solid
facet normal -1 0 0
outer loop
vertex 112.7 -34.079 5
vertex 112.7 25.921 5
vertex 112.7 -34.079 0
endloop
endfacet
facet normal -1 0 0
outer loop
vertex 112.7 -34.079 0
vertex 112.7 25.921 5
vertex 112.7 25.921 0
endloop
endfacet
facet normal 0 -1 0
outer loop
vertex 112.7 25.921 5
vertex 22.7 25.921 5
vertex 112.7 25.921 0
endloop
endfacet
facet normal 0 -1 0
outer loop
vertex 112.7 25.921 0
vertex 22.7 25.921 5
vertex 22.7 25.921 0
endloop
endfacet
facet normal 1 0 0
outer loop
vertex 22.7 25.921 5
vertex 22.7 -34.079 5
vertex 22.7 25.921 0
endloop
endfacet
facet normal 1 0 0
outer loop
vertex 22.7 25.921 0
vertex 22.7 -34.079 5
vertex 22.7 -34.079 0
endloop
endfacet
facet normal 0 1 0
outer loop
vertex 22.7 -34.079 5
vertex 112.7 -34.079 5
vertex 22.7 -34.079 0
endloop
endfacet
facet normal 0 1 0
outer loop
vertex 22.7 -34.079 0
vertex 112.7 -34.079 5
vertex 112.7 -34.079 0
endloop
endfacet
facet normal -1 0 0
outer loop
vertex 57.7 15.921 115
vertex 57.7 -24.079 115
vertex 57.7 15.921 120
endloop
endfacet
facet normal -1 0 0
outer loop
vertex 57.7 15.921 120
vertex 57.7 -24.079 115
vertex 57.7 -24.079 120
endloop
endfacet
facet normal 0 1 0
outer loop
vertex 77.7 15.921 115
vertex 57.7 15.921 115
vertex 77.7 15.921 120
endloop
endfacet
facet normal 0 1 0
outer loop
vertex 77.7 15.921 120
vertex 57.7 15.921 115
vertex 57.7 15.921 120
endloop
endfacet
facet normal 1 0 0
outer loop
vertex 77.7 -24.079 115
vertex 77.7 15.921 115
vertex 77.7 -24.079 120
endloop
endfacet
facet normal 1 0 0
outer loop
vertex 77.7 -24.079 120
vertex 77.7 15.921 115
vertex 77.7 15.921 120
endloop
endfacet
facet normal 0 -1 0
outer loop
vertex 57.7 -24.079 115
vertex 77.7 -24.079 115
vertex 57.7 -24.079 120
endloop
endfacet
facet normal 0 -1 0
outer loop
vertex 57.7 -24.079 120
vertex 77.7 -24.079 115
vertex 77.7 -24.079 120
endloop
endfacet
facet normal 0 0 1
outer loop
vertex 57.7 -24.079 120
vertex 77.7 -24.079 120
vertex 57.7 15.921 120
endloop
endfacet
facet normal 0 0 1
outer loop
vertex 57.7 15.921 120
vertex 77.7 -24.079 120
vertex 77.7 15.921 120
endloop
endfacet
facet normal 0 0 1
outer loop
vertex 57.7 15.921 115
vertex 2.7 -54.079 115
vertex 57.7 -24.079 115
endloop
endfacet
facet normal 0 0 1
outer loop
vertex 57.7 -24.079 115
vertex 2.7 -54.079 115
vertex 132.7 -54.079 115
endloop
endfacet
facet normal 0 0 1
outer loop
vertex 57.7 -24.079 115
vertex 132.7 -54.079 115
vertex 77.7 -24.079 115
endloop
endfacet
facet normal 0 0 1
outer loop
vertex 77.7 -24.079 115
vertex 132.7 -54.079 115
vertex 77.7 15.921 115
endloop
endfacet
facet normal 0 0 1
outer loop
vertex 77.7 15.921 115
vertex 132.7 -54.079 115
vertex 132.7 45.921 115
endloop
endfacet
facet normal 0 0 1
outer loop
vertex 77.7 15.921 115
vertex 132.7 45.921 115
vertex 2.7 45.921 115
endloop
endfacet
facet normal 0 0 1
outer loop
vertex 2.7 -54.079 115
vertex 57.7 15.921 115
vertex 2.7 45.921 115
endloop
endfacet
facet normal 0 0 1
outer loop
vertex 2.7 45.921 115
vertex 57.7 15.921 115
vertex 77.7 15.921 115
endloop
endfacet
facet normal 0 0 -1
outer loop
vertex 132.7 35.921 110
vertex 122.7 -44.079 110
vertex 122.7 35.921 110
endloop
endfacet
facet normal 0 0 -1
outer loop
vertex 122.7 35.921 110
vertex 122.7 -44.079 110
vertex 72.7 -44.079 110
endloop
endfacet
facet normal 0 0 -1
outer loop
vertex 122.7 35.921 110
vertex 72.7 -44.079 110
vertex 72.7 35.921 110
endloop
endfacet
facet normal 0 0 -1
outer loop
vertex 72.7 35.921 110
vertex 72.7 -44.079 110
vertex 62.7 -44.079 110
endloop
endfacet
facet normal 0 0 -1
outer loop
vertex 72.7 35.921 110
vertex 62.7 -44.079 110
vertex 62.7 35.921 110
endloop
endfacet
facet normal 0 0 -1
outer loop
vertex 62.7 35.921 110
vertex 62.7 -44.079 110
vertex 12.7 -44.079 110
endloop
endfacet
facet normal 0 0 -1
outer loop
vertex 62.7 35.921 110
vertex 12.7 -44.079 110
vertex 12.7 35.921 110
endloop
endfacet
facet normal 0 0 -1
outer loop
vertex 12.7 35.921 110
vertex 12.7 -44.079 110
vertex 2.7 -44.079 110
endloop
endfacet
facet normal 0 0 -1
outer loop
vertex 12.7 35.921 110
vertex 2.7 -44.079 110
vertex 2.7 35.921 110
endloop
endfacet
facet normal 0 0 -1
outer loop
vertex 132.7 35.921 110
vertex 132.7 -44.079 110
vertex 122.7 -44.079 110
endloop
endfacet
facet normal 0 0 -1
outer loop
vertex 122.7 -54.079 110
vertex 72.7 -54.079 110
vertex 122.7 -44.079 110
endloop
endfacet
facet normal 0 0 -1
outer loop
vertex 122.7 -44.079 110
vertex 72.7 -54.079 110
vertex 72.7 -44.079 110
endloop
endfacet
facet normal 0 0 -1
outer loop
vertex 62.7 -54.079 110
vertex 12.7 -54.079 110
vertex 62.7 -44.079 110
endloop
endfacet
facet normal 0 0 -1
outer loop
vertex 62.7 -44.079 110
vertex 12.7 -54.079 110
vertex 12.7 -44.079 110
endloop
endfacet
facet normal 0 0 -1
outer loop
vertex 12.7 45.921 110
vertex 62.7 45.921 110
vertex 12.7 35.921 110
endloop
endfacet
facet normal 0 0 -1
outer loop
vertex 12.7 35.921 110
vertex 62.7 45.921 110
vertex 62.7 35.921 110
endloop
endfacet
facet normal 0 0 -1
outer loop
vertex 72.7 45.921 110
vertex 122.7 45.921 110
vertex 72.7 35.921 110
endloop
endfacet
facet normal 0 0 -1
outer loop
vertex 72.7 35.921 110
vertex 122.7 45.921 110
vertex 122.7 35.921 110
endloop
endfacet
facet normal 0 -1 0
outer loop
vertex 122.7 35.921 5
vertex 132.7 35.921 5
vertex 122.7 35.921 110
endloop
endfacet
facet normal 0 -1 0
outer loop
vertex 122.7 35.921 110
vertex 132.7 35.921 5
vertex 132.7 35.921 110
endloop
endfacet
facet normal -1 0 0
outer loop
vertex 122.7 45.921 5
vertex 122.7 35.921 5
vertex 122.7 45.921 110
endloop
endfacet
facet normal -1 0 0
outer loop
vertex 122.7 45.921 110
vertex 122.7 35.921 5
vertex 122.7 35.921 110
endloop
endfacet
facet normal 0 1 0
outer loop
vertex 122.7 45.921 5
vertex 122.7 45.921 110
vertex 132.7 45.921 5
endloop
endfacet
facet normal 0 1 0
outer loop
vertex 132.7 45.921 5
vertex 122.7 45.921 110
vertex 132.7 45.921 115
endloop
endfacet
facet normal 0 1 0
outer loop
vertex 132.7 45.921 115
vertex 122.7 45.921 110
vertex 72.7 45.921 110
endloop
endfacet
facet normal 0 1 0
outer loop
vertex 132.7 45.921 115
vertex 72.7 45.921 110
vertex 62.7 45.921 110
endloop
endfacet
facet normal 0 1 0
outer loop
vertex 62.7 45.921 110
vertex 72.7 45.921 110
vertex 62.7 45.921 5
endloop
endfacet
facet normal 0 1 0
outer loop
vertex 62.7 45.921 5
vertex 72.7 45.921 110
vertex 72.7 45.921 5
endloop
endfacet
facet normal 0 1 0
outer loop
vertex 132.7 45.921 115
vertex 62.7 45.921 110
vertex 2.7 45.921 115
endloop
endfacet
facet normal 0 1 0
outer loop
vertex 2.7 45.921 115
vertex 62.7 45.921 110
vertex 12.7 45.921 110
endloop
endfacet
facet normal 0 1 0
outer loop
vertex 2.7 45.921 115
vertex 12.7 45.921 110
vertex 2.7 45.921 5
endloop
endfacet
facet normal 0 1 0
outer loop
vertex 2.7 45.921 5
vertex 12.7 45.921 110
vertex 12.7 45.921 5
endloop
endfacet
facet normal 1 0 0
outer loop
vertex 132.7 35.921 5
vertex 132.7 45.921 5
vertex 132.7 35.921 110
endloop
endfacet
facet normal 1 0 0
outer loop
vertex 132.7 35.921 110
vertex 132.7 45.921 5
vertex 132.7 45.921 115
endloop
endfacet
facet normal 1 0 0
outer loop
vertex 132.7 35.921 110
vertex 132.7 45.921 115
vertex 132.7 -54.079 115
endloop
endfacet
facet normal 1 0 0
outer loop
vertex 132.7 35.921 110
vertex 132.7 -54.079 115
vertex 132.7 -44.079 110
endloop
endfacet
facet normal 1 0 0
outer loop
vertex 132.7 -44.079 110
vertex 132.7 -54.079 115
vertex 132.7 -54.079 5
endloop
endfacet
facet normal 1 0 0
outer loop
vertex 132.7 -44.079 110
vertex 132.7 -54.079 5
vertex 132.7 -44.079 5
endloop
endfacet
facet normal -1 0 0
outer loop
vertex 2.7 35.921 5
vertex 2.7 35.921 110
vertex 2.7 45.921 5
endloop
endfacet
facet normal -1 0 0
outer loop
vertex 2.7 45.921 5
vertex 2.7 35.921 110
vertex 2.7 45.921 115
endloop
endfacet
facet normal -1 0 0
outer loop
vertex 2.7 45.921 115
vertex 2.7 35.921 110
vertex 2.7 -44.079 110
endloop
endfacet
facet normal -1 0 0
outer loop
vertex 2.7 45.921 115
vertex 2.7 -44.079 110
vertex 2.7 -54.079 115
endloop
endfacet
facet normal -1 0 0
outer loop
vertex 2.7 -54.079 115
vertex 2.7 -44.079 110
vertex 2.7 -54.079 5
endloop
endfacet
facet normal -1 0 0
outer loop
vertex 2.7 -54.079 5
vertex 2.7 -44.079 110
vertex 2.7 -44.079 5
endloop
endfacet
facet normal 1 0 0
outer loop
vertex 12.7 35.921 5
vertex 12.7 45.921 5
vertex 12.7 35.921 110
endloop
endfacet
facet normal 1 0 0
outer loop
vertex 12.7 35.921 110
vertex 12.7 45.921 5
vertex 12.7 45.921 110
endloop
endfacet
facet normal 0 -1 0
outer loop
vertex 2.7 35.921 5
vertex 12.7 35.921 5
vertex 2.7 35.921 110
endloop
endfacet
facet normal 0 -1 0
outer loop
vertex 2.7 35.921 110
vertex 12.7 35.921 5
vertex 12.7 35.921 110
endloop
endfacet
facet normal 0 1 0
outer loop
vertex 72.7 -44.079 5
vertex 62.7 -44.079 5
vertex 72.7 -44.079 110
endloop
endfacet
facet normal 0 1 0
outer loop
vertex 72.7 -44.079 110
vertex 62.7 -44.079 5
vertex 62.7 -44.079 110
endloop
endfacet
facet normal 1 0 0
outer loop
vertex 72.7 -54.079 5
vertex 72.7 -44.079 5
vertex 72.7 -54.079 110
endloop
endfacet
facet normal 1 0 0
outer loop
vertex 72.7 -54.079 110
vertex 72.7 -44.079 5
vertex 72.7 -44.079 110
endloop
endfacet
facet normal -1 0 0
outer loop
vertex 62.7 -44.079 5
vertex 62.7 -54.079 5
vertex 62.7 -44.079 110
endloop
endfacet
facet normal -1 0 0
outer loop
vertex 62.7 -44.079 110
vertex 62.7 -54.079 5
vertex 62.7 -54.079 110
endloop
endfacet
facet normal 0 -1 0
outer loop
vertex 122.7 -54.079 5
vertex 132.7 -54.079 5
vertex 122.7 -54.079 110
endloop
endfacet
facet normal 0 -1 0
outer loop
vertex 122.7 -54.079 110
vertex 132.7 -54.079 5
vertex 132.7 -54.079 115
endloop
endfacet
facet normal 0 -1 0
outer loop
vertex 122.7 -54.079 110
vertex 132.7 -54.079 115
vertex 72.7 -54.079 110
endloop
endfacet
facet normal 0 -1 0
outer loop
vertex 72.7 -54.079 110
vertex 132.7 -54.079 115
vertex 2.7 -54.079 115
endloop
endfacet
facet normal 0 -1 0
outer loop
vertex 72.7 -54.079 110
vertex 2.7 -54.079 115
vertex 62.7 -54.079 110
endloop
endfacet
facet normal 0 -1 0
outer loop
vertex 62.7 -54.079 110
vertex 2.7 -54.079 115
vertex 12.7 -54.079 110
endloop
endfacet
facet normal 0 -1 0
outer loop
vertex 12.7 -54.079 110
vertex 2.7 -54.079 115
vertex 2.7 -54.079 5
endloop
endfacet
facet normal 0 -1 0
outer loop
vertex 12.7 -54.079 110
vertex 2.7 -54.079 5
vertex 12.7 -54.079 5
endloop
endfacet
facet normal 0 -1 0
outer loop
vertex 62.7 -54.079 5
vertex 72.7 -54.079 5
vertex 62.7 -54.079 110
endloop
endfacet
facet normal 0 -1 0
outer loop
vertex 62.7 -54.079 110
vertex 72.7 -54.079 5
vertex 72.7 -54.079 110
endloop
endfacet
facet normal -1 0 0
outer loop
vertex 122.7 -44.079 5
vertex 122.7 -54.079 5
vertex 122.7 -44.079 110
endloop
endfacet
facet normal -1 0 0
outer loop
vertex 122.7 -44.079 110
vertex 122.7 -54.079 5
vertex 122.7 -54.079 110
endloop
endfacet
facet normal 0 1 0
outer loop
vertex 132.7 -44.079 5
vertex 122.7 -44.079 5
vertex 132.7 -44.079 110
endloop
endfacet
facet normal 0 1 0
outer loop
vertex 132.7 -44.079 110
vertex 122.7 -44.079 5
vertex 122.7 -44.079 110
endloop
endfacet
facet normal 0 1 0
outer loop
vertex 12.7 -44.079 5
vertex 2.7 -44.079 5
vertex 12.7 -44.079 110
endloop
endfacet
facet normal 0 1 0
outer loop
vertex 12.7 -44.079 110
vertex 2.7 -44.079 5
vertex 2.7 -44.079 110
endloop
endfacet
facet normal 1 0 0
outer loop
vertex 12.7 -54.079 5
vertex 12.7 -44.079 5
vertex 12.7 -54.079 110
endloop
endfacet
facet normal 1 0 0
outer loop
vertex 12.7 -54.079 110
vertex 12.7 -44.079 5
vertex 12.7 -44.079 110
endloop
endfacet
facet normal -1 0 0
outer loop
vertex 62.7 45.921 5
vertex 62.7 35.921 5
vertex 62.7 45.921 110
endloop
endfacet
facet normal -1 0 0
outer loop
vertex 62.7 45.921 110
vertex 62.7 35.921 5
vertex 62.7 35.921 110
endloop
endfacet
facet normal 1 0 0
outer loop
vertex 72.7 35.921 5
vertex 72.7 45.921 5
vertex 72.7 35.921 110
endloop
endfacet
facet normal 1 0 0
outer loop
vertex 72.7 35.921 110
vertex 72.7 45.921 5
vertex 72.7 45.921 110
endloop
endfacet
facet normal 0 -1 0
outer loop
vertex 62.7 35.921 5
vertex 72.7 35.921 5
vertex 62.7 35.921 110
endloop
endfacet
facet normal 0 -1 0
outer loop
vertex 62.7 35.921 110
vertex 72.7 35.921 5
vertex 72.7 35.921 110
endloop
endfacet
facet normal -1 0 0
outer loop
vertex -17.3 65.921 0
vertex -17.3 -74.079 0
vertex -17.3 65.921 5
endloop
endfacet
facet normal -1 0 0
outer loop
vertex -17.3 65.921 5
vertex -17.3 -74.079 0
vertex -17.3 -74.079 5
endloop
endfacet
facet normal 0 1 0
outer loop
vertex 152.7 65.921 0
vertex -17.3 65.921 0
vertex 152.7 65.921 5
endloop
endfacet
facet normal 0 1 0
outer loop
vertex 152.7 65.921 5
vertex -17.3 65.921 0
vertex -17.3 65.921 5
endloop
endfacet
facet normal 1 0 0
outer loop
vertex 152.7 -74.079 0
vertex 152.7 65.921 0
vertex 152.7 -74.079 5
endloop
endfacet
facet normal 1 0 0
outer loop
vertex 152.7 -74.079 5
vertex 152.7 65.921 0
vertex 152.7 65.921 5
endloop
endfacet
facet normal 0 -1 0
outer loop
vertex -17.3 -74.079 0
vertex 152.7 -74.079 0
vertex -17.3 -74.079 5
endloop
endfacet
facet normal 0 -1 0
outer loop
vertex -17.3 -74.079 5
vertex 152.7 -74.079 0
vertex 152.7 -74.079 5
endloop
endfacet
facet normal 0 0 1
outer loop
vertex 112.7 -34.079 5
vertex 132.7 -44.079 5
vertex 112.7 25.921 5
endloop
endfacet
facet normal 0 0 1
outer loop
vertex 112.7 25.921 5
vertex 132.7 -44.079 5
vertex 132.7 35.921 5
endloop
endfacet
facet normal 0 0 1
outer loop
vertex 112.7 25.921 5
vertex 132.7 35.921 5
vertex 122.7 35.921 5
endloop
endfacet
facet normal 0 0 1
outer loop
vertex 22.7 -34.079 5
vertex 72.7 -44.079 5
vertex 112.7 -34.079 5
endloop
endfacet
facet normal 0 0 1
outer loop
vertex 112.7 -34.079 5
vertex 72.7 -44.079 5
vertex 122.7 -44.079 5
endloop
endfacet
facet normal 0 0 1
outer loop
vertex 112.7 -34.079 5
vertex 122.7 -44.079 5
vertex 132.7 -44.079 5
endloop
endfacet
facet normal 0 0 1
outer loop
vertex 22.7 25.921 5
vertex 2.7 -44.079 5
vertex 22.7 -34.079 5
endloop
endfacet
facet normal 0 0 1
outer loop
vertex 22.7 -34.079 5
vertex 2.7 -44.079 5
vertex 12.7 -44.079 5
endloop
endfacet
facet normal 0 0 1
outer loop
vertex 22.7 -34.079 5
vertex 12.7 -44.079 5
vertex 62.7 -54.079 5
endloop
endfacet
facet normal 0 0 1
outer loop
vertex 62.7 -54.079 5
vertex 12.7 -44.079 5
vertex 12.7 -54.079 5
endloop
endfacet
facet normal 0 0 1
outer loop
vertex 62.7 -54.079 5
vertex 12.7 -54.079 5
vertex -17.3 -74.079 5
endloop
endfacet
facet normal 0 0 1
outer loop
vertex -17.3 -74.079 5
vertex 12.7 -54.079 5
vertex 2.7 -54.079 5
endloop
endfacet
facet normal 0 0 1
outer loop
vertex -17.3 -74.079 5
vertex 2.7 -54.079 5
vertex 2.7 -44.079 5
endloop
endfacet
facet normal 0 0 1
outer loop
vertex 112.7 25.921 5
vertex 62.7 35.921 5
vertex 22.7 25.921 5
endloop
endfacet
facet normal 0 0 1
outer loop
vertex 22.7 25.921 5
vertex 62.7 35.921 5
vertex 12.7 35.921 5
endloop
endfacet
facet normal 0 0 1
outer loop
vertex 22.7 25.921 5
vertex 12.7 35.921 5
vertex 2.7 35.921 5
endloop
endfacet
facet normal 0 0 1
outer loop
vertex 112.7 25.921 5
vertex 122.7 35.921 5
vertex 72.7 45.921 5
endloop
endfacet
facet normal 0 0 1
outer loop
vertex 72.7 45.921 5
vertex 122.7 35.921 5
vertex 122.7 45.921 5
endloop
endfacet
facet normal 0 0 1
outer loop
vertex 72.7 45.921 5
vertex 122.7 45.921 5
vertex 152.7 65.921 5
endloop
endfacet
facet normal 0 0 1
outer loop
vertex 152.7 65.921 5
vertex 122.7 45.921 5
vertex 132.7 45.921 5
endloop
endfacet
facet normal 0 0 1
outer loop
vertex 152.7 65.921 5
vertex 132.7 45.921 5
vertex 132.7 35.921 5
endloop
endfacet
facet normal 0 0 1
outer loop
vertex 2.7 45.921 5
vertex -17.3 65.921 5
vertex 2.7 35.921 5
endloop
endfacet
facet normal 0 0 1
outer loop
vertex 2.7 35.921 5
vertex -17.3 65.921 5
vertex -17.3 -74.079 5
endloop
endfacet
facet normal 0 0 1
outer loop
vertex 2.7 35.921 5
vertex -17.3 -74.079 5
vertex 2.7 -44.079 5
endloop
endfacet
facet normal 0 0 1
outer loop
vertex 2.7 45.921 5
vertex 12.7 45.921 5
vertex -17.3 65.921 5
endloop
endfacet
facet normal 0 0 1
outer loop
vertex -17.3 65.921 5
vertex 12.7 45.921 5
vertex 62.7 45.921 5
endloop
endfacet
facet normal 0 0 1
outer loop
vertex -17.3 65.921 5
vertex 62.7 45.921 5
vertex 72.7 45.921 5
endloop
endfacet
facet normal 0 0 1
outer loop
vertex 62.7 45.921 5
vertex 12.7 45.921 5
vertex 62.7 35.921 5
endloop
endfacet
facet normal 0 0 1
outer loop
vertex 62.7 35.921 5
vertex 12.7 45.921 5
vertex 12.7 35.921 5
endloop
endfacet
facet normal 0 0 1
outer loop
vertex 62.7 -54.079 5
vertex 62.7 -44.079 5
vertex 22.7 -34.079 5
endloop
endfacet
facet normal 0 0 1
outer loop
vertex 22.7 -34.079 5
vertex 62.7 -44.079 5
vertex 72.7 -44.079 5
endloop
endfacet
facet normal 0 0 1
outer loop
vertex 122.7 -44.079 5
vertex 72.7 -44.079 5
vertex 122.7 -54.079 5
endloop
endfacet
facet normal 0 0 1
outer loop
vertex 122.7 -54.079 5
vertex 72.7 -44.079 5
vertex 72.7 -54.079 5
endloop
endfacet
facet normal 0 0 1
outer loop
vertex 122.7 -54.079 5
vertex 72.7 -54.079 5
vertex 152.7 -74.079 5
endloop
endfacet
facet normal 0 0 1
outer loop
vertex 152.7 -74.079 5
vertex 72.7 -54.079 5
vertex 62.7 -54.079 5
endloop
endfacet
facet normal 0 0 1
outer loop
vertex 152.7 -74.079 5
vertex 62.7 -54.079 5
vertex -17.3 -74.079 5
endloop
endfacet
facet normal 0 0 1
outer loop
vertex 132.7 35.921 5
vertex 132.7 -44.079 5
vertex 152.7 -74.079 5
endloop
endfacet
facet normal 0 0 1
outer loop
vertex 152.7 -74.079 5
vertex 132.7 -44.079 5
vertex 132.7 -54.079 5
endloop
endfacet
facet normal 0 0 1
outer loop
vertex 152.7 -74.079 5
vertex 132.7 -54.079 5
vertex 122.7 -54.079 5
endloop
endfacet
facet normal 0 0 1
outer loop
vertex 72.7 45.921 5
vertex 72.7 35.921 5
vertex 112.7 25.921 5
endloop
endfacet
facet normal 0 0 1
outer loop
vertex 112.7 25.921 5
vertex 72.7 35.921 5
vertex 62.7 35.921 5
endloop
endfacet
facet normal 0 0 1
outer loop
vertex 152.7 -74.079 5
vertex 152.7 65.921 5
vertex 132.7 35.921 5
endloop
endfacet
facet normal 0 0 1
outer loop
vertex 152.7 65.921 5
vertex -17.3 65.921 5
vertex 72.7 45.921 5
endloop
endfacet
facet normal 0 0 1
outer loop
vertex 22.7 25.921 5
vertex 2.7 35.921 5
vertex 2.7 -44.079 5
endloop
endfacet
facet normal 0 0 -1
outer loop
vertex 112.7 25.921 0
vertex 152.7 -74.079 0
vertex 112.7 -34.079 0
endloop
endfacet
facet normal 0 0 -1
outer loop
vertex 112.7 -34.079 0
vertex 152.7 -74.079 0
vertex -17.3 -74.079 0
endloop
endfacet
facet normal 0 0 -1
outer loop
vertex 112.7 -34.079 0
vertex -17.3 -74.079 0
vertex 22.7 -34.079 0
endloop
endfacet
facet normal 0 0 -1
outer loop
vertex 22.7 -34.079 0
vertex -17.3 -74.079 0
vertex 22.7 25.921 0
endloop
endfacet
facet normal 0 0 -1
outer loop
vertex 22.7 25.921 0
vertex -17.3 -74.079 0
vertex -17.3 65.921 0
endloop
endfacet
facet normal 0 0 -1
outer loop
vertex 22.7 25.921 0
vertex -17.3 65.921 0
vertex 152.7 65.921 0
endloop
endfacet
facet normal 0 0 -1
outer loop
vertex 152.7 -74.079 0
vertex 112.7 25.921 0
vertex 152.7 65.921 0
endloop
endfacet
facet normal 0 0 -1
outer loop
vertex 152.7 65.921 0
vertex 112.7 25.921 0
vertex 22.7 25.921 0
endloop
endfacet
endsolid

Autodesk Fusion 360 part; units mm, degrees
sketch "Sketch1" plane through (0, 0, 0) normal (0, 0, 1) x (1, 0, 0)
  line L0 (-17.3001, 65.9212) -> (152.6999, 65.9212)
  line L1 (152.6999, 65.9212) -> (152.6999, -74.0788)
  line L2 (152.6999, -74.0788) -> (-17.3001, -74.0788)
  line L3 (-17.3001, -74.0788) -> (-17.3001, 65.9212)
  dimension "d1" = 140
  dimension "d2" = 170
extrude "Extrude1" add sketch "Sketch1" along normal blind 5
sketch "Sketch6" plane through (0, 0, 5) normal (0, 0, 1) x (-1, 0, 0)
  line L0 (17.3001, 74.0788) -> (-152.6999, 74.0788)
  line L1 (-152.6999, 74.0788) -> (-152.6999, -65.9212)
  line L2 (-152.6999, -65.9212) -> (17.3001, -65.9212)
  line L3 (17.3001, -65.9212) -> (17.3001, 74.0788)
  line L4 (-2.6999, 54.0788) -> (-132.6999, 54.0788)
  line L5 (-132.6999, 54.0788) -> (-132.6999, -45.9212)
  line L6 (-132.6999, -45.9212) -> (-2.6999, -45.9212)
  line L7 (-2.6999, -45.9212) -> (-2.6999, 54.0788)
  line L8 (17.3001, 74.0788) -> (17.3001, -65.9212)
  line L9 (-152.6999, -65.9212) -> (-152.6999, 74.0788)
  line L10 (-152.6999, 74.0788) -> (17.3001, 74.0788)
  line L11 (17.3001, -65.9212) -> (-152.6999, -65.9212)
  line L12 (-2.6999, 54.0788) -> (-12.6999, 54.0788)
  line L13 (-12.6999, 54.0788) -> (-12.6999, 44.0788)
  line L14 (-12.6999, 44.0788) -> (-2.6999, 44.0788)
  line L15 (-2.6999, 44.0788) -> (-2.6999, 54.0788)
  line L16 (-2.6999, -45.9212) -> (-12.6999, -45.9212)
  line L17 (-12.6999, -45.9212) -> (-12.6999, -35.9212)
  line L18 (-12.6999, -35.9212) -> (-2.6999, -35.9212)
  line L19 (-2.6999, -35.9212) -> (-2.6999, -45.9212)
  line L20 (-132.6999, 54.0788) -> (-122.6999, 54.0788)
  line L21 (-122.6999, 54.0788) -> (-122.6999, 44.0788)
  line L22 (-122.6999, 44.0788) -> (-132.6999, 44.0788)
  line L23 (-132.6999, 44.0788) -> (-132.6999, 54.0788)
  line L24 (-132.6999, -45.9212) -> (-122.6999, -45.9212)
  line L25 (-122.6999, -45.9212) -> (-122.6999, -35.9212)
  line L26 (-122.6999, -35.9212) -> (-132.6999, -35.9212)
  line L27 (-132.6999, -35.9212) -> (-132.6999, -45.9212)
  line L28 (-62.6999, 54.0788) -> (-72.6999, 54.0788)
  line L29 (-72.6999, 54.0788) -> (-72.6999, 44.0788)
  line L30 (-72.6999, 44.0788) -> (-62.6999, 44.0788)
  line L31 (-62.6999, 44.0788) -> (-62.6999, 54.0788)
  line L32 (-62.6999, -45.9212) -> (-72.6999, -45.9212)
  line L33 (-72.6999, -45.9212) -> (-72.6999, -35.9212)
  line L34 (-72.6999, -35.9212) -> (-62.6999, -35.9212)
  line L35 (-62.6999, -35.9212) -> (-62.6999, -45.9212)
  line L36 (-22.6999, -25.9212) -> (-112.6999, -25.9212)
  line L37 (-112.6999, -25.9212) -> (-112.6999, 34.0788)
  line L38 (-112.6999, 34.0788) -> (-22.6999, 34.0788)
  line L39 (-22.6999, 34.0788) -> (-22.6999, -25.9212)
  dimension "d23" = 20
  dimension "d24" = 20
  dimension "d25" = 20
  dimension "d26" = 20
  dimension "d27" = 10
  dimension "d28" = 10
  dimension "d29" = 10
  dimension "d30" = 10
  dimension "d31" = 10
  dimension "d32" = 10
  dimension "d33" = 10
  dimension "d34" = 10
  dimension "d35" = 10
  dimension "d36" = 10
  dimension "d37" = 10
  dimension "d38" = 10
  dimension "d39" = 50
  dimension "d40" = 50
  dimension "d41" = 50
  dimension "d42" = 50
  dimension "d57" = 10
  dimension "d58" = 10
  dimension "d59" = 10
  dimension "d60" = 10
  dimension "d61" = 20
  dimension "d62" = 20
extrude "Extrude4" add sketch "Sketch6" along normal blind 105 contours L4 L7 L12 L13 L14 L15 | L4 L28 L29 L30 L31 | L6 L7 L16 L17 L18 L19 | L4 L5 L20 L21 L22 L23 | L6 L32 L33 L34 L35 | L5 L6 L24 L25 L26 L27
sketch "Sketch7" plane through (0, 0, 110) normal (0, 0, 1) x (-1, 0, 0)
  line L0 (-2.6999, 44.0788) -> (-2.6999, 54.0788)
  line L1 (-2.6999, 54.0788) -> (-12.6999, 54.0788)
  line L2 (-12.6999, 54.0788) -> (-12.6999, 44.0788)
  line L3 (-12.6999, 44.0788) -> (-2.6999, 44.0788)
  line L4 (-2.6999, 54.0788) -> (-132.6999, 54.0788)
  line L5 (-132.6999, 54.0788) -> (-132.6999, -45.9212)
  line L6 (-132.6999, -45.9212) -> (-2.6999, -45.9212)
  line L7 (-2.6999, -45.9212) -> (-2.6999, 54.0788)
  dimension "d45" = 130
  dimension "d46" = 100
extrude "Extrude5" add sketch "Sketch7" along normal blind 5
sketch "Sketch8" plane through (0, 0, 115) normal (0, 0, 1) x (-1, 0, 0)
  line L0 (-2.6999, -45.9212) -> (-2.6999, 54.0788)
  line L1 (-2.6999, 54.0788) -> (-132.6999, 54.0788)
  line L2 (-132.6999, 54.0788) -> (-132.6999, -45.9212)
  line L3 (-132.6999, -45.9212) -> (-2.6999, -45.9212)
  line L4 (-57.6999, -15.9212) -> (-77.6999, -15.9212)
  line L5 (-77.6999, -15.9212) -> (-77.6999, 24.0788)
  line L6 (-77.6999, 24.0788) -> (-57.6999, 24.0788)
  line L7 (-57.6999, 24.0788) -> (-57.6999, -15.9212)
  dimension "d49" = 40
  dimension "d50" = 20
  dimension "d51" = 55
  dimension "d52" = 55
  dimension "d53" = 30
  dimension "d54" = 30
extrude "Extrude6" add sketch "Sketch8" along normal blind 5 contours L4 L5 L6 L7
extrude "Extrude7" cut sketch "Sketch6" against normal blind 5 contours L36 L37 L38 L39
